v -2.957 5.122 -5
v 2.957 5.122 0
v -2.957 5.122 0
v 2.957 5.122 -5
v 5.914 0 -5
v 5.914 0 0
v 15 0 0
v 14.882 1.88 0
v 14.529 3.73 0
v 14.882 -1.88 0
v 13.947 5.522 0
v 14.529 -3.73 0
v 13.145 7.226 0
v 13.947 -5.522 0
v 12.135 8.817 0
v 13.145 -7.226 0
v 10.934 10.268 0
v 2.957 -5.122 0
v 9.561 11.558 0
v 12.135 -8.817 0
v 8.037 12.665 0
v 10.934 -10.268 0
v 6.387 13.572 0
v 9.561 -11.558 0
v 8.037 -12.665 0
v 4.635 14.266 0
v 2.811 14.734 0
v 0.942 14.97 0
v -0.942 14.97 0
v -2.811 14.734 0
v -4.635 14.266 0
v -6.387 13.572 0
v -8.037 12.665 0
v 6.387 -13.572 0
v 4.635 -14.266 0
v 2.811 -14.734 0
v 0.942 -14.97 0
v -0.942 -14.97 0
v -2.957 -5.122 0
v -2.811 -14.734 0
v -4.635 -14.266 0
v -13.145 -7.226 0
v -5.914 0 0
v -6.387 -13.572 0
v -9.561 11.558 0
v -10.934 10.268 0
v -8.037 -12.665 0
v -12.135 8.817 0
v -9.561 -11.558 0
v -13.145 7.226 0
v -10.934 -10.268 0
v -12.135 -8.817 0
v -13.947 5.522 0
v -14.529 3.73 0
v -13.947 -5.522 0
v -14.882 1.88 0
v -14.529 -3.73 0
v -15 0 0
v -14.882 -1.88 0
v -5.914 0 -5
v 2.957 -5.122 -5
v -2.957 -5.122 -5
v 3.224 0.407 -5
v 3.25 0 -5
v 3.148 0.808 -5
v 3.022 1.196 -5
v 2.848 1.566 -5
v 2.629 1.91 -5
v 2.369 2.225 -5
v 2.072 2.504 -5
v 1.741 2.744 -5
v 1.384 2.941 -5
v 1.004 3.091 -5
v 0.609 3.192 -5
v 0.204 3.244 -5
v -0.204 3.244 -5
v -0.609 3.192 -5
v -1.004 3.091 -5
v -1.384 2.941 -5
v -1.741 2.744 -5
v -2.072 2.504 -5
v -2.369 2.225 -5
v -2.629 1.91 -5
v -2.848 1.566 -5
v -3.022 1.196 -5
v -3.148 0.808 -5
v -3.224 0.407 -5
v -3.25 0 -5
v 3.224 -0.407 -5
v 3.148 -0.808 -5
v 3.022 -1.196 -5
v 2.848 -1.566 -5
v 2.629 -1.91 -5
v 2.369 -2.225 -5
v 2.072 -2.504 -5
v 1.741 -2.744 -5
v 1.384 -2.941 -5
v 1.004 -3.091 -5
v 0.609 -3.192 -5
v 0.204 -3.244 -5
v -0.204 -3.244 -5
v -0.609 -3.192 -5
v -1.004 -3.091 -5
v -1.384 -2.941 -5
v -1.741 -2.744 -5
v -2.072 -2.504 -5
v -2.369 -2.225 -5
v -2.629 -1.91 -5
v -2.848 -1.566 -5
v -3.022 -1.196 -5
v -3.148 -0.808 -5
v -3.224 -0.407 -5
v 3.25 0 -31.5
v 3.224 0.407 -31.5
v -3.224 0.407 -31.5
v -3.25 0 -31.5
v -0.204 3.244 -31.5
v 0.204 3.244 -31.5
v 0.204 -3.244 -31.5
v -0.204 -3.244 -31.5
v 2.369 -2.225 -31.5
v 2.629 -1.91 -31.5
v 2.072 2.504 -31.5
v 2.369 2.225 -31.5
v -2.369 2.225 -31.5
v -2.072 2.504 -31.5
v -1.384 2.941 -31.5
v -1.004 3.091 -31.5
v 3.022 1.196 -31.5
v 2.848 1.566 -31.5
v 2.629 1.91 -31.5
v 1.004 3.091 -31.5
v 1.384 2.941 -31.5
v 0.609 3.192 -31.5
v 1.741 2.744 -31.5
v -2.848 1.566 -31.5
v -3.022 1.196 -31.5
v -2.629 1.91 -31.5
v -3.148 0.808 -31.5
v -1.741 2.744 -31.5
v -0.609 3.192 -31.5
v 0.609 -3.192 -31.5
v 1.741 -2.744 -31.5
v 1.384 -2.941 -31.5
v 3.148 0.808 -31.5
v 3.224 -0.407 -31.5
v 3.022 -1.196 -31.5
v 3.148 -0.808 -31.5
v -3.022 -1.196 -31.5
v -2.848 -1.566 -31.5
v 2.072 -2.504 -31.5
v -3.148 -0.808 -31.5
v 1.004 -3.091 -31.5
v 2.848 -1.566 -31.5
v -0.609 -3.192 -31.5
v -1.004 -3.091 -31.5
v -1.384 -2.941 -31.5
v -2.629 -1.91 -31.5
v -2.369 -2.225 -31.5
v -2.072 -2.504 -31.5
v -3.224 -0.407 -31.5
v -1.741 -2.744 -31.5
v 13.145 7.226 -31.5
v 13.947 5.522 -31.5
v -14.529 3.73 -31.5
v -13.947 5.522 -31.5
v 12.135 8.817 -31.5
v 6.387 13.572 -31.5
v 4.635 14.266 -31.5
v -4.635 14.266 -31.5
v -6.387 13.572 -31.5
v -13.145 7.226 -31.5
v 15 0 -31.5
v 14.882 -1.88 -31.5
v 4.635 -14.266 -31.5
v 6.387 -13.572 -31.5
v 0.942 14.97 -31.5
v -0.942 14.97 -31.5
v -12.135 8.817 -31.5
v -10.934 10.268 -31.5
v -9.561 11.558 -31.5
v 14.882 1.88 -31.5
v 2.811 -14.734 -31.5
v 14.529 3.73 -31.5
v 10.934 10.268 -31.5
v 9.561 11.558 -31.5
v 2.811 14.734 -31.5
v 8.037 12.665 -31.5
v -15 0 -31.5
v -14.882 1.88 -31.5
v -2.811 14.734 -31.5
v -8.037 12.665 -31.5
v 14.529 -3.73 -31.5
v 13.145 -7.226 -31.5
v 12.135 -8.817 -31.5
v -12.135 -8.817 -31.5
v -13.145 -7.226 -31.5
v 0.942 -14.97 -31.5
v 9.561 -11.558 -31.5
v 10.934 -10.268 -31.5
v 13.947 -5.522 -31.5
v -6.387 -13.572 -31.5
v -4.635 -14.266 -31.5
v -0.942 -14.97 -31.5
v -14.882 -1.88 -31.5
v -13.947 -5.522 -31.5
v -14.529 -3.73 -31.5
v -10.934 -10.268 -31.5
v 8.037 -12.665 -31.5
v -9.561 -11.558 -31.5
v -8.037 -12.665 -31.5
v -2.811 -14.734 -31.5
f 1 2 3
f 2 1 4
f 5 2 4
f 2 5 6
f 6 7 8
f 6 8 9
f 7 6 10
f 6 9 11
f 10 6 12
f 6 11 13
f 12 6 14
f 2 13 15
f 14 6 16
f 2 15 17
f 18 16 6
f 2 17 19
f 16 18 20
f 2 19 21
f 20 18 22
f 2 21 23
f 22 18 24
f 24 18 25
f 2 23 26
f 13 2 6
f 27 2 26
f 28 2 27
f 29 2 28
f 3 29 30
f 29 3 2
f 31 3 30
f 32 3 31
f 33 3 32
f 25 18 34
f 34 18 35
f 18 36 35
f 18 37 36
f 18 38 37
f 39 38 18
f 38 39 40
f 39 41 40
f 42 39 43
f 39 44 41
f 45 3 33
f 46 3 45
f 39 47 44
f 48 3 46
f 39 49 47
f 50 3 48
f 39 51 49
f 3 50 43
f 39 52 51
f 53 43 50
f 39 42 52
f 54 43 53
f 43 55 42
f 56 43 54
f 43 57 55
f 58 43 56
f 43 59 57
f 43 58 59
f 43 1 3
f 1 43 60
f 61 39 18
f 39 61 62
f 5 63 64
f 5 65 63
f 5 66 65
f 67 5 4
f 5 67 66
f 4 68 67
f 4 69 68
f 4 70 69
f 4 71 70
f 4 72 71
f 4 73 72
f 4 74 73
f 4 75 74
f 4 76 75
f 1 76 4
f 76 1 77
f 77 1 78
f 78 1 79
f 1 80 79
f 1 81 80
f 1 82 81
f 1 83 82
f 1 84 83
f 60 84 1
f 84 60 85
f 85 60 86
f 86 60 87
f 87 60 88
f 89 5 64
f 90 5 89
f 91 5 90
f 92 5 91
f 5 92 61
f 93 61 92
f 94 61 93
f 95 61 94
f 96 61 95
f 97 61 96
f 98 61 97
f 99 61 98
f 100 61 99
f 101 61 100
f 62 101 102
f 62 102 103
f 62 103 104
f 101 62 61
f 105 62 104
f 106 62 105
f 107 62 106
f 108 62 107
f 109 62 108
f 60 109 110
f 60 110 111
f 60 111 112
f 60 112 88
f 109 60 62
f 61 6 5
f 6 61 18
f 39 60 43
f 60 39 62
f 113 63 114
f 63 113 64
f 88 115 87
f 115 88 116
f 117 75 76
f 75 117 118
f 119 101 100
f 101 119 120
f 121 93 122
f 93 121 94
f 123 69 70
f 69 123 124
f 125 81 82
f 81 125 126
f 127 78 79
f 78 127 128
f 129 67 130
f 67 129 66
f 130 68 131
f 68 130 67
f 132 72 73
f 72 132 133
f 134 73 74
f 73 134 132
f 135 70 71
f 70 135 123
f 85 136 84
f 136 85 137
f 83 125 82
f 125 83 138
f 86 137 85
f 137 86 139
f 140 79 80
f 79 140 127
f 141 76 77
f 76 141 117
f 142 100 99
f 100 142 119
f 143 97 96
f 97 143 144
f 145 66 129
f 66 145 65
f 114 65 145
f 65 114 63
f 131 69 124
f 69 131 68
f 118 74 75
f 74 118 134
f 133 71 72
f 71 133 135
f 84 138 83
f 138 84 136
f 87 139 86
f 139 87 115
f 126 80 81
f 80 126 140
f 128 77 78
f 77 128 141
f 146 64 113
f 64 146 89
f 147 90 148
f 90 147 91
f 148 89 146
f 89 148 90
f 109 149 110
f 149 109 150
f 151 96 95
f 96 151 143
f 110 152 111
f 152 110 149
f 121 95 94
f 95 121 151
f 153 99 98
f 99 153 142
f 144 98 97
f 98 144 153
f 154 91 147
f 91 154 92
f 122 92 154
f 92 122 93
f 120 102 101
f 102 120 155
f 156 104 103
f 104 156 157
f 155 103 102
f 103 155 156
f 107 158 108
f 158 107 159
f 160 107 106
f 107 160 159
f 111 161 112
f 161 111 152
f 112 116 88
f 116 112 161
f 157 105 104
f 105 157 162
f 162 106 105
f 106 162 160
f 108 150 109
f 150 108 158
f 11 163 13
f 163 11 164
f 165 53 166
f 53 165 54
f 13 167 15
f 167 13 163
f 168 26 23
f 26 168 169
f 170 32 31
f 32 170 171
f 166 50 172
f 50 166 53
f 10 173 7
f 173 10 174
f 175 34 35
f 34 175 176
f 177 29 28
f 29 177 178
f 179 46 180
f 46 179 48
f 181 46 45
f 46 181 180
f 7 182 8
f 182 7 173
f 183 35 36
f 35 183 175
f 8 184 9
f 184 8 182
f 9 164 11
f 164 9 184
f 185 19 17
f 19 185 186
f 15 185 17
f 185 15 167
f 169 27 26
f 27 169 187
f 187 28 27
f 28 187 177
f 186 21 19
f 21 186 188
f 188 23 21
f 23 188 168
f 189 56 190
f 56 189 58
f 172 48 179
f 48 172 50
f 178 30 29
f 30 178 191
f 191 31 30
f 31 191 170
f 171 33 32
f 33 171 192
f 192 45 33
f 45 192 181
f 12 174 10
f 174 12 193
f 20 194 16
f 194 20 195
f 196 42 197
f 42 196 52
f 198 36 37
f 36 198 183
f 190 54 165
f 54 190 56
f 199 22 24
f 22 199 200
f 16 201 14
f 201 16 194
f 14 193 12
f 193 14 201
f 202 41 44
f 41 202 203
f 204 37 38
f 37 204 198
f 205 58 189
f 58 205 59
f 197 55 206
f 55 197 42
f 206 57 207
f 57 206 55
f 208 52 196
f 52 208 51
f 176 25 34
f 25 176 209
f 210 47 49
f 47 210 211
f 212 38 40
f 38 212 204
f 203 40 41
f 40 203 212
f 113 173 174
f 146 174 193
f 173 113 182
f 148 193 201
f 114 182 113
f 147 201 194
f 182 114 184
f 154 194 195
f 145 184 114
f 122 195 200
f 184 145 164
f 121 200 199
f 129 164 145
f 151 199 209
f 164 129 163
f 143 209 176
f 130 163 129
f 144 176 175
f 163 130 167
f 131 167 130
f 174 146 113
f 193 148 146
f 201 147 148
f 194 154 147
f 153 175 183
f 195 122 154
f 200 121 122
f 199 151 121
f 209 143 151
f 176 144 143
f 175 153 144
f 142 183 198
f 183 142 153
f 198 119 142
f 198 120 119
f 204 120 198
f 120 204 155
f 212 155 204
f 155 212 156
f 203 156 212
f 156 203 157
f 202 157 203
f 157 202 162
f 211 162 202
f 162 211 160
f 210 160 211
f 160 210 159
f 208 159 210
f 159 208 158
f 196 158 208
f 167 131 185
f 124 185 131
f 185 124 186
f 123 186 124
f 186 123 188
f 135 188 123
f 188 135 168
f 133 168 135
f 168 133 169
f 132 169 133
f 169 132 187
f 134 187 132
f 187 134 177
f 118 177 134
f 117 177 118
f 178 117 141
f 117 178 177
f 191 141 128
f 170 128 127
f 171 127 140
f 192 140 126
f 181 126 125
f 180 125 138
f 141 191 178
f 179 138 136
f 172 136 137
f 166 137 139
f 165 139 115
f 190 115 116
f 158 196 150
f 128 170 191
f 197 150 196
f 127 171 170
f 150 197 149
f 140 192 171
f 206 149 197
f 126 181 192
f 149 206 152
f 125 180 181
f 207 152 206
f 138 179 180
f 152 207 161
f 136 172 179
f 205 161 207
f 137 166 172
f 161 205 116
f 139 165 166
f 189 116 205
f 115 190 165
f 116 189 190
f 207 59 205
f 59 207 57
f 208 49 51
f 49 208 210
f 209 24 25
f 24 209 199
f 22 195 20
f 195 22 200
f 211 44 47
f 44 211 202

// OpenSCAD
$fn = 50;


difference() {
	union() {
		translate(v = [0, 0, -31.5000000000]) {
			cylinder(h = 31.5000000000, r = 15.0000000000);
		}
	}
	union() {
		translate(v = [0, 0, 0]) {
			rotate(a = [0, 0, 0]) {
				difference() {
					union() {
						translate(v = [0, 0, -5]) {
							linear_extrude(height = 5) {
								polygon(points = [[5.9142500000, 0.0000000000], [2.9571250000, 5.1218907443], [-2.9571250000, 5.1218907443], [-5.9142500000, 0.0000000000], [-2.9571250000, -5.1218907443], [2.9571250000, -5.1218907443]]);
							}
						}
					}
					union();
				}
			}
		}
		#translate(v = [0, 0, -100.0000000000]) {
			cylinder(h = 200, r = 3.2500000000);
		}
	}
}
